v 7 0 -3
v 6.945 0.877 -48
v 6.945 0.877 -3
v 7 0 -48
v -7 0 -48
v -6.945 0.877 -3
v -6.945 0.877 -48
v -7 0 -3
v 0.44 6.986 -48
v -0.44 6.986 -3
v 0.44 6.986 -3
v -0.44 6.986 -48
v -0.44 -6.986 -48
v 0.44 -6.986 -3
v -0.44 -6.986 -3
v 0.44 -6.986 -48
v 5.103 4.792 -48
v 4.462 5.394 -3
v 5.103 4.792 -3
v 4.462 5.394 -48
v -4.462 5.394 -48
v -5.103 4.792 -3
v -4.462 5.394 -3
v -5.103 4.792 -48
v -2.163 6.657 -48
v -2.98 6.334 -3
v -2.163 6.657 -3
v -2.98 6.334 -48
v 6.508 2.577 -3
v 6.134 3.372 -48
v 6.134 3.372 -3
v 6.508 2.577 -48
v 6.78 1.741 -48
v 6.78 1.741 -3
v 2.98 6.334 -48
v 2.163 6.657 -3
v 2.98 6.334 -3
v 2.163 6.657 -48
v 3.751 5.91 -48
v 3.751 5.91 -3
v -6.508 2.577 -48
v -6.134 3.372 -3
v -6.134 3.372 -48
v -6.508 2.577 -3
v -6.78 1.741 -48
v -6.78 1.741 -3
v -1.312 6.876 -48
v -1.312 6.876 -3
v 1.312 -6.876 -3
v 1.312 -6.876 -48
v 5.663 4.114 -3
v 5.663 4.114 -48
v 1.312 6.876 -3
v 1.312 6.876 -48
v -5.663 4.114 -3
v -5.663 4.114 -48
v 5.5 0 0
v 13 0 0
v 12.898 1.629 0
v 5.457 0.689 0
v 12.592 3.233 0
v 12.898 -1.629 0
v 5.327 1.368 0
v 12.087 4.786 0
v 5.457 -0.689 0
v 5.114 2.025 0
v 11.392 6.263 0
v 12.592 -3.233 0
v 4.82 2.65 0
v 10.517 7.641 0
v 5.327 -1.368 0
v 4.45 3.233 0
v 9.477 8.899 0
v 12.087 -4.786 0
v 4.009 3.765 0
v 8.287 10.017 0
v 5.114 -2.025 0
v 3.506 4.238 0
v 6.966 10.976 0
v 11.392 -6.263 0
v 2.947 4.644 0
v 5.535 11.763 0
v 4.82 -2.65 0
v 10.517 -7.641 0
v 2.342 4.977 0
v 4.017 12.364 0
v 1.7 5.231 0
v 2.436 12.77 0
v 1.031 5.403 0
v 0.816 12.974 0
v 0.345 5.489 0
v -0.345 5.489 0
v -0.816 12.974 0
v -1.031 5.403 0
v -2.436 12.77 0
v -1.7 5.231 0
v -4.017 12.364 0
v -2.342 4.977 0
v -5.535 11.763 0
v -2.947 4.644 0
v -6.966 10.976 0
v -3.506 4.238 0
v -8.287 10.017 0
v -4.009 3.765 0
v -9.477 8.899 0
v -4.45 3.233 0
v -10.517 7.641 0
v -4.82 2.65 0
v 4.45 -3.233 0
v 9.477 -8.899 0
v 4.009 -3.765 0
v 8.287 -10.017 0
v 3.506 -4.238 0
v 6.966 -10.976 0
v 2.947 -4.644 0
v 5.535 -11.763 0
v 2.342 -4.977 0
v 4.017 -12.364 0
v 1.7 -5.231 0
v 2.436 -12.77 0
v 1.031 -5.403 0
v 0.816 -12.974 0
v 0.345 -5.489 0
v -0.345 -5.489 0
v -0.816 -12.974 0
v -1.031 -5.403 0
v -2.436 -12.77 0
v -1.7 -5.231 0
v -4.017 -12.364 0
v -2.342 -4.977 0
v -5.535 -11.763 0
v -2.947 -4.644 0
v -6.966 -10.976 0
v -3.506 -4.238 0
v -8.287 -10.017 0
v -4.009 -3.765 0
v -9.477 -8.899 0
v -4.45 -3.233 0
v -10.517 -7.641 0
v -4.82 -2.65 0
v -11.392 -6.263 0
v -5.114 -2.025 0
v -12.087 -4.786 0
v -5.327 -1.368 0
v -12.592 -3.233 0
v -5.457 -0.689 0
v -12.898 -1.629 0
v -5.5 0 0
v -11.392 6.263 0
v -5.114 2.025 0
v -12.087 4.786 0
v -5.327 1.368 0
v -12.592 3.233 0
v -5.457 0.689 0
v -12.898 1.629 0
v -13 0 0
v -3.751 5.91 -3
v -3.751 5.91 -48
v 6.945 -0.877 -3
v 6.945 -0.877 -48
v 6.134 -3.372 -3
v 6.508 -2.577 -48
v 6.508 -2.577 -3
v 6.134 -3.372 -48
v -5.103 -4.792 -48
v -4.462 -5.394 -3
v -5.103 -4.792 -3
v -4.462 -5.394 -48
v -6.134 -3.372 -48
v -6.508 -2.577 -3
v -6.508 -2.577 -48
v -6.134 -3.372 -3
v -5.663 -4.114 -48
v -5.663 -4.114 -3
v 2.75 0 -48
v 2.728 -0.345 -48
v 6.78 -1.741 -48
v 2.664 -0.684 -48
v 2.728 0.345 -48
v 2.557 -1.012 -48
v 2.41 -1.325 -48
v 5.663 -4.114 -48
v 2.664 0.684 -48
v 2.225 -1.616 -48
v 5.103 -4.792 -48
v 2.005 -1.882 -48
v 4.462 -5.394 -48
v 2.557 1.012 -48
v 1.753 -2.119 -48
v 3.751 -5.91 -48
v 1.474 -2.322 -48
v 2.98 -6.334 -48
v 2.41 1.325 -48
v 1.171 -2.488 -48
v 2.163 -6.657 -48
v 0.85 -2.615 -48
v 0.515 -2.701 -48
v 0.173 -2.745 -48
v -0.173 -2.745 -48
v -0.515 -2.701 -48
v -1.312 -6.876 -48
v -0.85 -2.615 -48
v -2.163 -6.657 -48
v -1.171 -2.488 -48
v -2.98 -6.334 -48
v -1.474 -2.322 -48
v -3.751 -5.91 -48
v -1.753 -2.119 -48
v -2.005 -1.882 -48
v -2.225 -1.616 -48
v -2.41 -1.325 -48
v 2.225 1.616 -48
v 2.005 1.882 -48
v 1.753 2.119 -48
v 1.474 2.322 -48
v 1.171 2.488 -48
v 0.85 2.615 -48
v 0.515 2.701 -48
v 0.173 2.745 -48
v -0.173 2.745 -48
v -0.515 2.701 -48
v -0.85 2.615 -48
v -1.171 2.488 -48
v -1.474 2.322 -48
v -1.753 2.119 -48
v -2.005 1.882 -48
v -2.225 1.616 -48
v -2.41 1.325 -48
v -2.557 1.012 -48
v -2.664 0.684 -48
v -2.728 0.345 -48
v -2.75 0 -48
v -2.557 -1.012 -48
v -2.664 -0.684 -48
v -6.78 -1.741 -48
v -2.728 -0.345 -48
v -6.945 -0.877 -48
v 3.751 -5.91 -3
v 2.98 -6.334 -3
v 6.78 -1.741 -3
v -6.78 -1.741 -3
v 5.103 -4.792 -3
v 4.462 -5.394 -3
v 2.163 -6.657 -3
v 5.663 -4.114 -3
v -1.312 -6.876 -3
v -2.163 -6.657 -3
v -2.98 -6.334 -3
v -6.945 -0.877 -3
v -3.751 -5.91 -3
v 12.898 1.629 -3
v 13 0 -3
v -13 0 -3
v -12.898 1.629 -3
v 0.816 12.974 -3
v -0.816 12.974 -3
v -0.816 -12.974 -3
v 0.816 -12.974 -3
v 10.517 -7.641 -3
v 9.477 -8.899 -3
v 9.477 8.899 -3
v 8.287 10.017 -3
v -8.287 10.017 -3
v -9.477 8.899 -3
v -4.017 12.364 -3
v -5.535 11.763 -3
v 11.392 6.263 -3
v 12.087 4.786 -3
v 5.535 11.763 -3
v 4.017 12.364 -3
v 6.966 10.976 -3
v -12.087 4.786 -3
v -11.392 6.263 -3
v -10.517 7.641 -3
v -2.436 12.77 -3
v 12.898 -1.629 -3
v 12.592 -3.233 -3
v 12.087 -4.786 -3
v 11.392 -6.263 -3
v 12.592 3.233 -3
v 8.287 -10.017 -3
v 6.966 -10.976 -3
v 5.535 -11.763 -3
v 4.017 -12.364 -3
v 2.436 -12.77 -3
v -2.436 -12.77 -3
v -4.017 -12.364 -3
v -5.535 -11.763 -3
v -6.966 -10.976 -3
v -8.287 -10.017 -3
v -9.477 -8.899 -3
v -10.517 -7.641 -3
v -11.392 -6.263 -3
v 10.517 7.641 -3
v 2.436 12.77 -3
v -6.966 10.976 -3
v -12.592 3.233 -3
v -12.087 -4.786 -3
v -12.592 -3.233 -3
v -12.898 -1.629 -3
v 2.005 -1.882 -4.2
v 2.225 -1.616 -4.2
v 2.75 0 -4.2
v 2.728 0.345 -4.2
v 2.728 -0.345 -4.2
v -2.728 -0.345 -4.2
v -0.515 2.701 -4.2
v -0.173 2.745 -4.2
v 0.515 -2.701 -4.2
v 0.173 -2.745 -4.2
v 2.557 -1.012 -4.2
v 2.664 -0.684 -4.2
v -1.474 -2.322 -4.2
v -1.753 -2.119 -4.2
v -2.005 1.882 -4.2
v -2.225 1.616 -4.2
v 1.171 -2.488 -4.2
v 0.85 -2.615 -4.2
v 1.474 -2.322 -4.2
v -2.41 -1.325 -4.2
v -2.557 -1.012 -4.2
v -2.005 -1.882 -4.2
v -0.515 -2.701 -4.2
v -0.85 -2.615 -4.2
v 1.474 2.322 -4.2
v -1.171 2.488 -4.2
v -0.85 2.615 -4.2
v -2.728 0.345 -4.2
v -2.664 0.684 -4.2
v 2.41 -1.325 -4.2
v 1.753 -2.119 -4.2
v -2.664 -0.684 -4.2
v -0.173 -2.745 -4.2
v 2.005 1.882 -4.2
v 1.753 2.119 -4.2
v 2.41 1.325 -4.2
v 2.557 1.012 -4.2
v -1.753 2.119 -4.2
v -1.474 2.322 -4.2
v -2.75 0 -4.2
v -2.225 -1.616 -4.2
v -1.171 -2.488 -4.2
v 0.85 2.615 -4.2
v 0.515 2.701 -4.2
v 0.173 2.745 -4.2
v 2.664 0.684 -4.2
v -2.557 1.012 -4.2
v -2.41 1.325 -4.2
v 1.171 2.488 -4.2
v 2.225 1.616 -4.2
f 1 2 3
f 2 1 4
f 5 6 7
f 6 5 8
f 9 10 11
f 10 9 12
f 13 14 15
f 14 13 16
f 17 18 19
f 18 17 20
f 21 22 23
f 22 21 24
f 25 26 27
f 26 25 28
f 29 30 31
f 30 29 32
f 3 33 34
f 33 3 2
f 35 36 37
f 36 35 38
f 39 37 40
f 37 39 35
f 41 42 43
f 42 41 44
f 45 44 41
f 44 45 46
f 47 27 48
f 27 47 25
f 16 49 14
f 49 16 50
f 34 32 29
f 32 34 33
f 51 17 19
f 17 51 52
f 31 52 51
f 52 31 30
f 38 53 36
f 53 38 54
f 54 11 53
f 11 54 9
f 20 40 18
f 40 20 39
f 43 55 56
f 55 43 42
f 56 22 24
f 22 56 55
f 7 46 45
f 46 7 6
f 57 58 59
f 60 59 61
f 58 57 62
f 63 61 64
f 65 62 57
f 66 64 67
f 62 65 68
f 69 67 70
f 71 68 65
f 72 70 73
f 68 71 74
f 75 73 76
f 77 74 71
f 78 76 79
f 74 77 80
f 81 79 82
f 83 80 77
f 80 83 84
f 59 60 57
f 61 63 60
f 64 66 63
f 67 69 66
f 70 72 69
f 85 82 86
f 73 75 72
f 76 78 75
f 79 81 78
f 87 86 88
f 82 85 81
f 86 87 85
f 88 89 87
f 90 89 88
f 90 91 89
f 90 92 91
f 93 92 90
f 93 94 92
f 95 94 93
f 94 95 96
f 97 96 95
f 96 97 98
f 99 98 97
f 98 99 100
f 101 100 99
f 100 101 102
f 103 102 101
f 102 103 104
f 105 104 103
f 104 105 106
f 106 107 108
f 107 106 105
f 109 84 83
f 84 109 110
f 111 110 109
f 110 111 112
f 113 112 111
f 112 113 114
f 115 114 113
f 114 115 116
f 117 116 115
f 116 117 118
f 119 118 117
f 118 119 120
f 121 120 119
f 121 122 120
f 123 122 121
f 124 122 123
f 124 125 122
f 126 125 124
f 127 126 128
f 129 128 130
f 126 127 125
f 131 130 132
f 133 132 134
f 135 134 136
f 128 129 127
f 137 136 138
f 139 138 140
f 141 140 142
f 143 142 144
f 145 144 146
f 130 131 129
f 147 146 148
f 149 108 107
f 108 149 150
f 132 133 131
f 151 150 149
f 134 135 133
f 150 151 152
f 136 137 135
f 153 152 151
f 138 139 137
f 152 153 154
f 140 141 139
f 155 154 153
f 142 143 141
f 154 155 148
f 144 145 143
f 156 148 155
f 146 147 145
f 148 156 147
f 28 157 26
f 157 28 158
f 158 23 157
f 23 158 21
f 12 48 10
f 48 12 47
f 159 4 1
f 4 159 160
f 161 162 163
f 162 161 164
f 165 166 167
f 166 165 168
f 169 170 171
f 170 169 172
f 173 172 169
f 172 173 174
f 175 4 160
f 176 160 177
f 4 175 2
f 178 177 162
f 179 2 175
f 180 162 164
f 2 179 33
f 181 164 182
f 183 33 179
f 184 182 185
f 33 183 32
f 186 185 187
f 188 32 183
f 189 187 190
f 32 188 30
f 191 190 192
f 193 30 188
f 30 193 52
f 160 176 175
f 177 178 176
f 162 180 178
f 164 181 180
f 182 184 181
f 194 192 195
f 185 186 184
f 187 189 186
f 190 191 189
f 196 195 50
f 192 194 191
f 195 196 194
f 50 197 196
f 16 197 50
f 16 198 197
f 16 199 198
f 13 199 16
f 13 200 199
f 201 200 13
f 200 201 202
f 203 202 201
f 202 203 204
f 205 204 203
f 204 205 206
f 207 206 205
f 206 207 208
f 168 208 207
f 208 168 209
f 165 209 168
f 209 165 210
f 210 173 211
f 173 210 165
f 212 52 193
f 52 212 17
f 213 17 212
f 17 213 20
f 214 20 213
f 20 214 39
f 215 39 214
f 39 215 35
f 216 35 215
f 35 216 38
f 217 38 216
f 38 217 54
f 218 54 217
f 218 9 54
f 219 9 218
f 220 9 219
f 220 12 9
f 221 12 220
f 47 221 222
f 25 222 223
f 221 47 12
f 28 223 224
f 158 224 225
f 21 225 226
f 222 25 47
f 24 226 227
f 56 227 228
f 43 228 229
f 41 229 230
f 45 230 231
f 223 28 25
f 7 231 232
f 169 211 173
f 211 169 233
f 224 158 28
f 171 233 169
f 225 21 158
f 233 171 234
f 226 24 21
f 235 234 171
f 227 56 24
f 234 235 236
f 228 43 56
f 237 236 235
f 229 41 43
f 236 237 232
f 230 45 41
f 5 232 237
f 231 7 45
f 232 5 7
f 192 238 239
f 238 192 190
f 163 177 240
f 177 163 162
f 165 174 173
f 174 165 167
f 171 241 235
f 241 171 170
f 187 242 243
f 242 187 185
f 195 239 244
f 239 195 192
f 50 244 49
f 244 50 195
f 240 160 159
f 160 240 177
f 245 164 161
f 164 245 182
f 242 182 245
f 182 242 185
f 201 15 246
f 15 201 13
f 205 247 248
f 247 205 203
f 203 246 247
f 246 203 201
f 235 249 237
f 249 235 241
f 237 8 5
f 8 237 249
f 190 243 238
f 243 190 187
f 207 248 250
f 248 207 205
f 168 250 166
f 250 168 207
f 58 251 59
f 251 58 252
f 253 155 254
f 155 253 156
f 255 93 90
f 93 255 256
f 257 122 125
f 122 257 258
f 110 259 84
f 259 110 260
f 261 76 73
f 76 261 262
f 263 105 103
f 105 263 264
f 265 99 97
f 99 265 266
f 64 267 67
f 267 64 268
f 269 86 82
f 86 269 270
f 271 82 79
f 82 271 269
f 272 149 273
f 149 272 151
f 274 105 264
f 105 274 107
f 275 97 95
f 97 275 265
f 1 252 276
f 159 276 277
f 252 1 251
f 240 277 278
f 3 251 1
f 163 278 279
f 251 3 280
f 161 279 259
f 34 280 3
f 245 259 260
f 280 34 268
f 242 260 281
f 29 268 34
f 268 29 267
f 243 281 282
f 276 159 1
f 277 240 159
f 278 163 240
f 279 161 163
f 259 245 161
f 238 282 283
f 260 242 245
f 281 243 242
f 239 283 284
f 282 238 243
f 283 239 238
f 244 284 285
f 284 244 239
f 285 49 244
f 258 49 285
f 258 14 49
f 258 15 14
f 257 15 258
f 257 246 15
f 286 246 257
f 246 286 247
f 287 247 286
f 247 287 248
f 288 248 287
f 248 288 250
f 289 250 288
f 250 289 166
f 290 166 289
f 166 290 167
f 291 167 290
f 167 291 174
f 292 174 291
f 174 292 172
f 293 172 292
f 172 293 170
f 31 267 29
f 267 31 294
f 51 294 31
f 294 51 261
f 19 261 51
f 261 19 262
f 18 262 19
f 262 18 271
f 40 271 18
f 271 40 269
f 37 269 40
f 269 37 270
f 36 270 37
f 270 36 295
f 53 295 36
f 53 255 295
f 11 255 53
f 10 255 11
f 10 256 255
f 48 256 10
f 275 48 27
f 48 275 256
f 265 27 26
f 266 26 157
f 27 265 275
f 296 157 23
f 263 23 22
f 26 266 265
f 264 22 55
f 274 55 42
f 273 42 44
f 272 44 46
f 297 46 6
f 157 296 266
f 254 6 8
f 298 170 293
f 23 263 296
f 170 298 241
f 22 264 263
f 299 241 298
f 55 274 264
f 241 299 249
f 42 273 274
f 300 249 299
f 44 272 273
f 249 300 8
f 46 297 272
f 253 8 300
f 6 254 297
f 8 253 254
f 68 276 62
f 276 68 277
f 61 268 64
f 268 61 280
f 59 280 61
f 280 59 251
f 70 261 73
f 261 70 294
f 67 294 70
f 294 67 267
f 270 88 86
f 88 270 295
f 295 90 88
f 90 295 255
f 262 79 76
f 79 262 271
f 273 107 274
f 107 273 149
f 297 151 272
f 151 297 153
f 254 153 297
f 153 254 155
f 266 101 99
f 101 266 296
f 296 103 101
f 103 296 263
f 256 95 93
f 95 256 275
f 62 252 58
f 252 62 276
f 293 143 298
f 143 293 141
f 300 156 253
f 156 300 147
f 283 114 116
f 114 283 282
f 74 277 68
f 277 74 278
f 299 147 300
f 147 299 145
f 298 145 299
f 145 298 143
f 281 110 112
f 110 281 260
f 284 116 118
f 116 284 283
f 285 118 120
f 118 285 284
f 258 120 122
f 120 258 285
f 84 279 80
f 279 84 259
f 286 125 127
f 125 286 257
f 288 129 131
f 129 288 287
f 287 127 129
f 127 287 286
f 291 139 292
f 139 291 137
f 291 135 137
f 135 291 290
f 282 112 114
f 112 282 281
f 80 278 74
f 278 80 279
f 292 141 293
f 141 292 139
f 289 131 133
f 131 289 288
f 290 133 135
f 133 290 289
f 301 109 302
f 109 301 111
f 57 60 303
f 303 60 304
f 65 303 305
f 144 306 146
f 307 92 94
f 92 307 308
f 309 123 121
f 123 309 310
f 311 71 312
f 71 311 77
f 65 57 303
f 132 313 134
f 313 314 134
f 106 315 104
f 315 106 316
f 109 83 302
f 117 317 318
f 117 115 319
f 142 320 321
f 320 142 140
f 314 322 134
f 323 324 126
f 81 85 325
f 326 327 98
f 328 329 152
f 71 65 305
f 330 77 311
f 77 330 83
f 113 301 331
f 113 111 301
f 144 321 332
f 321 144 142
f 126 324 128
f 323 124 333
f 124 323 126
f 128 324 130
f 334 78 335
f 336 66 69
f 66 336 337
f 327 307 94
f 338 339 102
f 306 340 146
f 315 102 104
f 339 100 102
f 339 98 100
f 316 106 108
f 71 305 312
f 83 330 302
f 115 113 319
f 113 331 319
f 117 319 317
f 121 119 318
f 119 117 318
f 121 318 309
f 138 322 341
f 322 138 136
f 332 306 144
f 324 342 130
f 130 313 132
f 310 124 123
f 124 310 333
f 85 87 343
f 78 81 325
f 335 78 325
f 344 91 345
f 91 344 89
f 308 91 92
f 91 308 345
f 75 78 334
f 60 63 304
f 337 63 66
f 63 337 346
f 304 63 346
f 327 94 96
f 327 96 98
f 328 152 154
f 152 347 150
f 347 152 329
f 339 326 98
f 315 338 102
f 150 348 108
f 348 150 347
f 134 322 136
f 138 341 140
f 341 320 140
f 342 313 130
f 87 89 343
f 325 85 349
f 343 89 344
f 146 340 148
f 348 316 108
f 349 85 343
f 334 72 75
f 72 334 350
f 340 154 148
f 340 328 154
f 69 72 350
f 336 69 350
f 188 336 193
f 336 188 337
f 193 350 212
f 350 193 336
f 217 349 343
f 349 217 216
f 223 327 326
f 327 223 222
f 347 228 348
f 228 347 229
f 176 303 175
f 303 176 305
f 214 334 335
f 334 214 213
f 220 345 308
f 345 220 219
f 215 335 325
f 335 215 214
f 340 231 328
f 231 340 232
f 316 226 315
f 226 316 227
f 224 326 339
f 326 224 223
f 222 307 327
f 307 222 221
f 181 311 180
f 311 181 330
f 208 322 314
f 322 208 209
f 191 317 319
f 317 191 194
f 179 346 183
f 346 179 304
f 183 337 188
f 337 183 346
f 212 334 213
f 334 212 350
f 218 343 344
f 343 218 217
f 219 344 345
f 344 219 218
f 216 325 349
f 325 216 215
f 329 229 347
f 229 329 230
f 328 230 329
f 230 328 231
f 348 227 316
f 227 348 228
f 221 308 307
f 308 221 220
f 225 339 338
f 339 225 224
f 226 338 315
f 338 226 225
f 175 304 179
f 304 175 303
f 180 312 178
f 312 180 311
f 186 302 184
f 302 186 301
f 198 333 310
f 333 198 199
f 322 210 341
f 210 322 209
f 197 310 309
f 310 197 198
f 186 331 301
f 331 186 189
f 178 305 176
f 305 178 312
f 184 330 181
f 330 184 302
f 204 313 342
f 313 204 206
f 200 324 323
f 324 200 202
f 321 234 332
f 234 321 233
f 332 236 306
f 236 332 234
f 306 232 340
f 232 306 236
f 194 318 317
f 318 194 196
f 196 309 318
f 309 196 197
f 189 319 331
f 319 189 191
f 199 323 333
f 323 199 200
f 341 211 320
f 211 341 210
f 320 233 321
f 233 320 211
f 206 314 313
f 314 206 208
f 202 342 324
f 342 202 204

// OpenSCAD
$fn = 50;


difference() {
	union() {
		translate(v = [0, 0, -48.0000000000]) {
			cylinder(h = 48, r = 7.0000000000);
		}
		translate(v = [0, 0, -3.0000000000]) {
			cylinder(h = 3, r = 13.0000000000);
		}
	}
	union() {
		translate(v = [0, 0, 0]) {
			rotate(a = [0, 0, 0]) {
				difference() {
					union() {
						#translate(v = [0, 0, -48.0000000000]) {
							cylinder(h = 48, r = 2.2500000000);
						}
						#translate(v = [0, 0, -4.2000000000]) {
							cylinder(h = 4.2000000000, r = 7.0000000000, r1 = 2.7500000000, r2 = 5.5000000000);
						}
						#translate(v = [0, 0, -48.0000000000]) {
							cylinder(h = 48, r = 2.7500000000);
						}
						#translate(v = [0, 0, -48.0000000000]) {
							cylinder(h = 48, r = 2.2500000000);
						}
					}
					union();
				}
			}
		}
	}
}
